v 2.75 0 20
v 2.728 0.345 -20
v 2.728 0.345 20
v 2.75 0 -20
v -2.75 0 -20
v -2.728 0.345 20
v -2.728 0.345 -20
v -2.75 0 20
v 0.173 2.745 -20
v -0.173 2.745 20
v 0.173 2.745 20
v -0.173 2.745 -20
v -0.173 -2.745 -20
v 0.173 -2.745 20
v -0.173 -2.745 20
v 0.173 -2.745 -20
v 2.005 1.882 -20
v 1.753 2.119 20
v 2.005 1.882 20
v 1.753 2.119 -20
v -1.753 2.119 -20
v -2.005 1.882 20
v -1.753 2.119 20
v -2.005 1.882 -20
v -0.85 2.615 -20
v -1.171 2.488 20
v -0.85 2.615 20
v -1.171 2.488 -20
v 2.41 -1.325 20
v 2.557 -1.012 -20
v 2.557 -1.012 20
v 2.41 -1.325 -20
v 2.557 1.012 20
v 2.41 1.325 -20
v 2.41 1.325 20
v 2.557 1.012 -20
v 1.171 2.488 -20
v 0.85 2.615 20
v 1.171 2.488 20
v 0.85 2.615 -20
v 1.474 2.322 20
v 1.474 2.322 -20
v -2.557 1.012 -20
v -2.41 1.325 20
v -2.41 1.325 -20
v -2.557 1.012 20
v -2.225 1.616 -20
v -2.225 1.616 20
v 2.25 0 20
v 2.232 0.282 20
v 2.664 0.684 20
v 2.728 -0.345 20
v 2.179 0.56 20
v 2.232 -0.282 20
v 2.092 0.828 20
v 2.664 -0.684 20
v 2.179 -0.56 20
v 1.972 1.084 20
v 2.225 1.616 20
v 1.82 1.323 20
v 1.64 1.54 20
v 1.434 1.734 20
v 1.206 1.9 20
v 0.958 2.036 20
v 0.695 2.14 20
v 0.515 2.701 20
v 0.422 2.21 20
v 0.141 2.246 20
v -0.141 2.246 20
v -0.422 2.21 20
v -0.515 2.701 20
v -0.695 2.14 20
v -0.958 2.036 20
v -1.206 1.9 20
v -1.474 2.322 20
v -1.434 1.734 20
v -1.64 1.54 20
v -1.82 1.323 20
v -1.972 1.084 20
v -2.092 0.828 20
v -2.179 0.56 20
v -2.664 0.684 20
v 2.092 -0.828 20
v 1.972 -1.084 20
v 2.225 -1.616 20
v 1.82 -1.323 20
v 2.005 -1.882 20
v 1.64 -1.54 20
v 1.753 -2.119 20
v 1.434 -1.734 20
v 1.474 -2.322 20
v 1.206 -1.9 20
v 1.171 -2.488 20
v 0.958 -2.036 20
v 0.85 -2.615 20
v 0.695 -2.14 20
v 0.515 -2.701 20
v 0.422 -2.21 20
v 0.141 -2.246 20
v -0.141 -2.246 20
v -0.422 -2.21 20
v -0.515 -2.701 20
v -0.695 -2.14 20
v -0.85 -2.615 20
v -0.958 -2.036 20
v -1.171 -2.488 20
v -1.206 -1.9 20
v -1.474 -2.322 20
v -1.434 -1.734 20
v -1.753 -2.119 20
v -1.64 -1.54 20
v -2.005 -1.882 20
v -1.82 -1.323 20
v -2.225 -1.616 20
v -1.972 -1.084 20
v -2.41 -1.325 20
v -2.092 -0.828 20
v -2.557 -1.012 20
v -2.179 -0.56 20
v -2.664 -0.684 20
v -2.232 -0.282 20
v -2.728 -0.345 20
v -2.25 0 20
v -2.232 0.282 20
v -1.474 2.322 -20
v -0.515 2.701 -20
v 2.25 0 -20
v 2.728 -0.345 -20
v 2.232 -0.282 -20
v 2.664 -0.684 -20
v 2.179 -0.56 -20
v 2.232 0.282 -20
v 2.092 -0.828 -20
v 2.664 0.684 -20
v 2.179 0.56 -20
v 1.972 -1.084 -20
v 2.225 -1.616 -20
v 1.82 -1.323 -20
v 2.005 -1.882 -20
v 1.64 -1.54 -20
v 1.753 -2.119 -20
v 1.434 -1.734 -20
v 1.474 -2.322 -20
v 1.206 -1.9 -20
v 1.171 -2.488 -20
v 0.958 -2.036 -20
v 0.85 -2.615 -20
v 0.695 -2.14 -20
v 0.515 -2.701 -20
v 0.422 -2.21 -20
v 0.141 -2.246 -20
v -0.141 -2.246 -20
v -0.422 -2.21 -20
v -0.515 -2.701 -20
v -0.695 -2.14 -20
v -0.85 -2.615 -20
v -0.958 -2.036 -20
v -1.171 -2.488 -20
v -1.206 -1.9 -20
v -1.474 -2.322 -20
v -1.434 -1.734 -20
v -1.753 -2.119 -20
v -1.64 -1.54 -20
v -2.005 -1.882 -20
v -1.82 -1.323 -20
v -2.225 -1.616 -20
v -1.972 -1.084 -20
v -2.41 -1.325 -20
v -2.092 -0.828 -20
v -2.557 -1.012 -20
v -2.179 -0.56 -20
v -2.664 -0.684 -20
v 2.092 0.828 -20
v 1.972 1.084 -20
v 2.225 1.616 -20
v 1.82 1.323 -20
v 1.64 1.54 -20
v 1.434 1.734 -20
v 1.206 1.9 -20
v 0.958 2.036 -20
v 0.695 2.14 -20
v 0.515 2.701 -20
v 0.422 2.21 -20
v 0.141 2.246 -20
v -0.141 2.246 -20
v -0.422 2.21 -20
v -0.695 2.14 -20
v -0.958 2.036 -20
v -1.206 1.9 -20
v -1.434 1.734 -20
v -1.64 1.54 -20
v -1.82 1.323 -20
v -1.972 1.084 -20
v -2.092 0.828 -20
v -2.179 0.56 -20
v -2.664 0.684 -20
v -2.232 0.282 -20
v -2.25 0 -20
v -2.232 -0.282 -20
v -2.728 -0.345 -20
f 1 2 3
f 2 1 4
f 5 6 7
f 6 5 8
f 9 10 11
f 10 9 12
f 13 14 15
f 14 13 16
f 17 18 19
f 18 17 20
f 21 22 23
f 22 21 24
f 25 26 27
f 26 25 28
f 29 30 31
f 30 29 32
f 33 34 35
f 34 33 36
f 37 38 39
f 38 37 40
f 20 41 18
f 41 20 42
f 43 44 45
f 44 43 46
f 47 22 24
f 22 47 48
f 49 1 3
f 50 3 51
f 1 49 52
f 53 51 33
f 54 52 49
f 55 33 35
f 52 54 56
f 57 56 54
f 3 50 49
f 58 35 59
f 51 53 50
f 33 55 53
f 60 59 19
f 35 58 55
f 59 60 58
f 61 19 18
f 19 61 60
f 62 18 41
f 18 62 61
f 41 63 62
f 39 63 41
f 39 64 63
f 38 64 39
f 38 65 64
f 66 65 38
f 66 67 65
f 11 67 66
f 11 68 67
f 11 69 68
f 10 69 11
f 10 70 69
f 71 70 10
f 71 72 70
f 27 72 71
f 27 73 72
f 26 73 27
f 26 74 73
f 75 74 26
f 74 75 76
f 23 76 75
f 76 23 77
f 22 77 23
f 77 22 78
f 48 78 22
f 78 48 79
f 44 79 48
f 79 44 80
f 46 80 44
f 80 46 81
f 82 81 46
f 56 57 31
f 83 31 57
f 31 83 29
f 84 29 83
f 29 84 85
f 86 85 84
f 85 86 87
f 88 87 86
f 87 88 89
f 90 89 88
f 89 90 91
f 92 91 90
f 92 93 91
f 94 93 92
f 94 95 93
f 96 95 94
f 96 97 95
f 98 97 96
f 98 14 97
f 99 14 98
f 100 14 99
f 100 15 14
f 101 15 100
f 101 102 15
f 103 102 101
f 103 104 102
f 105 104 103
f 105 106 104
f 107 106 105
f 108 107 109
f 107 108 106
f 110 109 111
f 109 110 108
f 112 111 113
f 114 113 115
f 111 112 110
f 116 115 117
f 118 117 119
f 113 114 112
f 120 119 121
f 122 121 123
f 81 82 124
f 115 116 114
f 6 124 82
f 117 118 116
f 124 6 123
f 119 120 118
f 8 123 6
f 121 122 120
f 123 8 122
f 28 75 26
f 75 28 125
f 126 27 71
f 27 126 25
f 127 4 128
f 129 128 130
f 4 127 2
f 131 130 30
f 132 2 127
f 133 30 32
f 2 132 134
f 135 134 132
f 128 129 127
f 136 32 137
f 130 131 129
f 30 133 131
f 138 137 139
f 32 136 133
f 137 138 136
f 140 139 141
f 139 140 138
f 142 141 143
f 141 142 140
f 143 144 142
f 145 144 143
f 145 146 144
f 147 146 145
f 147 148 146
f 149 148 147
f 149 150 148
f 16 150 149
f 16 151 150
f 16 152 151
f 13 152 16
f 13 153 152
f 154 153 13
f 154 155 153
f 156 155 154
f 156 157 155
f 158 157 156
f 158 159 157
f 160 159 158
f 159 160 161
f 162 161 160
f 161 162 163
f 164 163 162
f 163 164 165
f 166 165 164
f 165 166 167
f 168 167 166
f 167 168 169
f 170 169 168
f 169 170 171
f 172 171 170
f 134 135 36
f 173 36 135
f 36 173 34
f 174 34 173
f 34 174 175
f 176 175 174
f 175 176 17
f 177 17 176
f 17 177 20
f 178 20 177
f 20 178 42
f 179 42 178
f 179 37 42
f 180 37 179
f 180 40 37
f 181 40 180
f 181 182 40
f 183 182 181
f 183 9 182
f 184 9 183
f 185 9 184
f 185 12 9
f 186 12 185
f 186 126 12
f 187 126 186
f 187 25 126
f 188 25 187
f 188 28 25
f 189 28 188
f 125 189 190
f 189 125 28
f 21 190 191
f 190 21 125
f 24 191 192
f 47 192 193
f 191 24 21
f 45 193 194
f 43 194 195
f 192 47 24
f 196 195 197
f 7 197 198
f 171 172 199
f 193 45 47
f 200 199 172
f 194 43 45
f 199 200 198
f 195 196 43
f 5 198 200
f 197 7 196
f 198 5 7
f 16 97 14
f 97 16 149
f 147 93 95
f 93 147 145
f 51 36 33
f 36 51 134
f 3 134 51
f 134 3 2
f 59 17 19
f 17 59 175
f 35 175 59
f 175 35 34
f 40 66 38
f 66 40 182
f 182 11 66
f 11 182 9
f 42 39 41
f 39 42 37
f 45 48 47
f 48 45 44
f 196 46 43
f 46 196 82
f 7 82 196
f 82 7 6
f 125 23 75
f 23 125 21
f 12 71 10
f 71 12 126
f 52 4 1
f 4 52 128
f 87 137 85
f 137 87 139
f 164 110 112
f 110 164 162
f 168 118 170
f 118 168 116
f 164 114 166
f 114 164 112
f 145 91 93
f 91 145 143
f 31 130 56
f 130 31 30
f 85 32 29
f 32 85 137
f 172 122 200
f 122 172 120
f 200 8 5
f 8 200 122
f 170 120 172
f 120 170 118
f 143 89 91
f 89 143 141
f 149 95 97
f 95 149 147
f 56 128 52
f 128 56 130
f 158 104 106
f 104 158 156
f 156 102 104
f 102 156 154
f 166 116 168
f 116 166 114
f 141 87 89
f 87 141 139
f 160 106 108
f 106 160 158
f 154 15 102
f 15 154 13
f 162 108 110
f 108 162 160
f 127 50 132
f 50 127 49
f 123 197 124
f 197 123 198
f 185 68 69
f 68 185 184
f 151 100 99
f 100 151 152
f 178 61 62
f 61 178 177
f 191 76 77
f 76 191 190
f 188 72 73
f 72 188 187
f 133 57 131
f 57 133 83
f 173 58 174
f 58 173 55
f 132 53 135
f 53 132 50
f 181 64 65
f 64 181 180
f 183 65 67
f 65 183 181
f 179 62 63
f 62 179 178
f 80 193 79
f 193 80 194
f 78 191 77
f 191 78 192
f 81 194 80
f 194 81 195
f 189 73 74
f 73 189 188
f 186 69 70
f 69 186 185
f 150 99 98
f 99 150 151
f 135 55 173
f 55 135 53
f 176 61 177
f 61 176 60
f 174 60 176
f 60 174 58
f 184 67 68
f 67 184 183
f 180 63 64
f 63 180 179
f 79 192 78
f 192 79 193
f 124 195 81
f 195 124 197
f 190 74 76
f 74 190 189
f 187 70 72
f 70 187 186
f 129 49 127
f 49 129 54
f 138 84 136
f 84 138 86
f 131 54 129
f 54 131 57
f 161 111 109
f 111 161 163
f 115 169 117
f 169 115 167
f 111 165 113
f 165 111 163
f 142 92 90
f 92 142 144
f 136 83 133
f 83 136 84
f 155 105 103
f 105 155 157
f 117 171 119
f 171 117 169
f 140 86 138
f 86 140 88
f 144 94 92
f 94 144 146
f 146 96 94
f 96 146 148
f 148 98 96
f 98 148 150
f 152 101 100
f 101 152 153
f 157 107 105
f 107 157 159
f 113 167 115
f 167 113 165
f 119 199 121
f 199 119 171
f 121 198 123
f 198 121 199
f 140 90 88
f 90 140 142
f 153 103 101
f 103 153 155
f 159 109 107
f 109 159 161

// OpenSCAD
$fn = 50;


difference() {
	union() {
		translate(v = [0, 0, -20.0000000000]) {
			cylinder(h = 40, r = 2.7500000000);
		}
	}
	union() {
		translate(v = [0, 0, -100.0000000000]) {
			cylinder(h = 200, r = 2.2500000000);
		}
	}
}
